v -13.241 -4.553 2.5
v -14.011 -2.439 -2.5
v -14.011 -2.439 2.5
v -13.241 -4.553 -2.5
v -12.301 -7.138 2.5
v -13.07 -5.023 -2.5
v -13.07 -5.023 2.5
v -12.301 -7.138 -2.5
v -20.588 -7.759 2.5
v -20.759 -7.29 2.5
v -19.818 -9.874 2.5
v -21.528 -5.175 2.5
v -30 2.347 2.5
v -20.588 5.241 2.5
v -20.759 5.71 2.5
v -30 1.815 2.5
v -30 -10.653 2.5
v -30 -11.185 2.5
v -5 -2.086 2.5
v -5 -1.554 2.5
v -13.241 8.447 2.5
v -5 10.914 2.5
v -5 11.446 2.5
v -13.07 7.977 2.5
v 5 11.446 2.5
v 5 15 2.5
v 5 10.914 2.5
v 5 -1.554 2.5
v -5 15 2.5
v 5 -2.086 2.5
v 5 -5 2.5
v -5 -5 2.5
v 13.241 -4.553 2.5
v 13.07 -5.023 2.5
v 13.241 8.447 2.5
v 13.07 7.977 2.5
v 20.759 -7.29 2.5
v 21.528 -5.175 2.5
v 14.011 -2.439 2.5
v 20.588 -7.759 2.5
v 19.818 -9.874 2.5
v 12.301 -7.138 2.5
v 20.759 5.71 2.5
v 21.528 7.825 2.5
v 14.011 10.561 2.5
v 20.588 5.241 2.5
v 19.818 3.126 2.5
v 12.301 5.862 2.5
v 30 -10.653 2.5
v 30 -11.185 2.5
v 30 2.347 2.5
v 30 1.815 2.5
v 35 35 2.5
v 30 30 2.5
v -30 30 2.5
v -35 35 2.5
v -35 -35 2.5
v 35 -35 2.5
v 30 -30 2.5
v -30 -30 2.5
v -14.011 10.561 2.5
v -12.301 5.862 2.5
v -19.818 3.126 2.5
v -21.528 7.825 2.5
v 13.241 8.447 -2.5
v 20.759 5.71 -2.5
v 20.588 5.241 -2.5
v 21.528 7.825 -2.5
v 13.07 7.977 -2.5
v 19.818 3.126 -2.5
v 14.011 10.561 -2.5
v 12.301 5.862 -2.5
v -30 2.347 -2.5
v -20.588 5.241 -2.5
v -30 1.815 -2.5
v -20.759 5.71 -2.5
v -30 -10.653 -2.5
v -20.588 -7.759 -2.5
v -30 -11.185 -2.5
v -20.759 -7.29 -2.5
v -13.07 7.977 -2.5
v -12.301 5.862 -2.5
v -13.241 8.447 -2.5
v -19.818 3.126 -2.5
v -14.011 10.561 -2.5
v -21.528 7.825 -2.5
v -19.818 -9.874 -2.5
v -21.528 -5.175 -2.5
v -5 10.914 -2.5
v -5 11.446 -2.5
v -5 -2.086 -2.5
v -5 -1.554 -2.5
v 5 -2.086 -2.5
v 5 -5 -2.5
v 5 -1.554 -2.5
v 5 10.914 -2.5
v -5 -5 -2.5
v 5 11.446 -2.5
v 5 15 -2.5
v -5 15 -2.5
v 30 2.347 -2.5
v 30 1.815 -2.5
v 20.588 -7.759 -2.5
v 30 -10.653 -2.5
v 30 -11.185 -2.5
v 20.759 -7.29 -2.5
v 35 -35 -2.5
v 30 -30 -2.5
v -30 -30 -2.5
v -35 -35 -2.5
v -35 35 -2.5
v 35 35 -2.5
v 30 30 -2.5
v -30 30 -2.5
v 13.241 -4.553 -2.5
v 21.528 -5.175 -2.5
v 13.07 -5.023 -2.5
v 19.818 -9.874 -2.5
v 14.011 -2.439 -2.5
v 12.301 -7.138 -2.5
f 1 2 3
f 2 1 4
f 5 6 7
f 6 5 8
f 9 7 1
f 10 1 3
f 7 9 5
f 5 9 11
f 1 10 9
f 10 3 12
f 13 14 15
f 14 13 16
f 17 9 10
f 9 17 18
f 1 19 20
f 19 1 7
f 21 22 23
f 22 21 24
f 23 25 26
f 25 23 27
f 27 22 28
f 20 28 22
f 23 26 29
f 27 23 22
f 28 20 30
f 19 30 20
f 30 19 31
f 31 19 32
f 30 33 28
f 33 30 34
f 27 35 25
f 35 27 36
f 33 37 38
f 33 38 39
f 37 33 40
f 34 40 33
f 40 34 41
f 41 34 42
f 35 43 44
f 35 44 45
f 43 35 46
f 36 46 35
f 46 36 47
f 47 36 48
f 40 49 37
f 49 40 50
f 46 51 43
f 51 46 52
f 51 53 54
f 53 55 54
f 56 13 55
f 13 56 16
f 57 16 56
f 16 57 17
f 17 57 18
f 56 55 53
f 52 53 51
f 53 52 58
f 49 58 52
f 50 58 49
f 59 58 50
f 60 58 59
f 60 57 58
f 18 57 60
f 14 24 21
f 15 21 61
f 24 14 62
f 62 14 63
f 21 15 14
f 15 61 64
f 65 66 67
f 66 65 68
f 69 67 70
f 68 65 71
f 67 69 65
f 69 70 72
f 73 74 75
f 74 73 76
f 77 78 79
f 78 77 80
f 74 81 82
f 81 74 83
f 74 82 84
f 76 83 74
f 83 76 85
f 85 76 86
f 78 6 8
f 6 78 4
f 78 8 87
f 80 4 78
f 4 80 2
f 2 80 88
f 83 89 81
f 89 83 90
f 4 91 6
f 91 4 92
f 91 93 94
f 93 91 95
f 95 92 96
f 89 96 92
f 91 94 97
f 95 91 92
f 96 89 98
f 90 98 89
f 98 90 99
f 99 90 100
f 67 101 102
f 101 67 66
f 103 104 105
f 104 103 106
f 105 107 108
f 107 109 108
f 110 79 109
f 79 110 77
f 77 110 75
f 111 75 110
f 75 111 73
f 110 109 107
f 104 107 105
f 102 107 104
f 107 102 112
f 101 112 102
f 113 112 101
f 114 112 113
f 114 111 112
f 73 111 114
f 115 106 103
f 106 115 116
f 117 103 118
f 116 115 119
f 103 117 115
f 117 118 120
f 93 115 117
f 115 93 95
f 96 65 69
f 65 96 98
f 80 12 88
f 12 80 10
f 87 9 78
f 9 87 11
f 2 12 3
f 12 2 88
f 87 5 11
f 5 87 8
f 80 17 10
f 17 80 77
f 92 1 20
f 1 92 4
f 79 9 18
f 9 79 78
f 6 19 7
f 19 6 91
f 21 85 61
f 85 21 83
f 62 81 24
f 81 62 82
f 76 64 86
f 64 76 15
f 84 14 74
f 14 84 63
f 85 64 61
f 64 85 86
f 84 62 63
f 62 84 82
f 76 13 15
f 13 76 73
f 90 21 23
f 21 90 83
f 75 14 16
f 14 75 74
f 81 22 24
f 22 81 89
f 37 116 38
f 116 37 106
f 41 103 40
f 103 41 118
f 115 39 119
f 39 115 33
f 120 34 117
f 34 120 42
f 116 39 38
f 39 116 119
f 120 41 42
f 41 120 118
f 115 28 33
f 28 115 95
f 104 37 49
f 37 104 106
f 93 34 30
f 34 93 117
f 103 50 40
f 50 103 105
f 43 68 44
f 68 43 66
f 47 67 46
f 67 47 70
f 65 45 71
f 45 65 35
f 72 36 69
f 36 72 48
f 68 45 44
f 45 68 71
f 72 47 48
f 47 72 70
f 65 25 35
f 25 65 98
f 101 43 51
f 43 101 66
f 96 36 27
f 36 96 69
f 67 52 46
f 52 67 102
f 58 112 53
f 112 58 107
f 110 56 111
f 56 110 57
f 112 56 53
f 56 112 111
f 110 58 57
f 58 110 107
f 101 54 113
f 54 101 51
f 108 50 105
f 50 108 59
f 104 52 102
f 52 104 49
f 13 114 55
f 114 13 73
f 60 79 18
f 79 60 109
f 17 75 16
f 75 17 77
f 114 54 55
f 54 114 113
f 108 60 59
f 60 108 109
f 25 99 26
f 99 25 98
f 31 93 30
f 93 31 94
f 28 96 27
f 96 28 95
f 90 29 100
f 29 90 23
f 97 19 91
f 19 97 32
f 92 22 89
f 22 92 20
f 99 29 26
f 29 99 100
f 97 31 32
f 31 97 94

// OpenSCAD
$fn = 64;

mm = 1;
cm = 10*mm;

module bistable_test() {
  #difference() {
    cube([7*cm, 7*cm, 5*mm], center = true);
    cube([6*cm, 6*cm, 6*cm], center = true);
  }

  translate([0,5*mm,0])
  #cube([1*cm, 2*cm, 5*mm], center = true);

  rotate([0,0,20]) {
    translate([-18*mm,0,0])
    #cube([8*mm, 5*mm, 5*mm], center = true);

    translate([-18*mm,0,0])
    cube([35*mm, 0.5*mm, 5*mm], center = true);
  }

  translate([0,13*mm,0])
  rotate([0,0,20]) {
    translate([-18*mm,0,0])
    #cube([8*mm, 5*mm, 5*mm], center = true);

    translate([-18*mm,0,0])
    cube([35*mm, 0.5*mm, 5*mm], center = true);
  }

  rotate([0,0,-20]) {
    translate([18*mm,0,0])
    #cube([8*mm, 5*mm, 5*mm], center = true);

    translate([18*mm,0,0])
    cube([35*mm, 0.5*mm, 5*mm], center = true);
  }

  translate([0,13*mm,0])
  rotate([0,0,-20]) {
    translate([18*mm,0,0])
    #cube([8*mm, 5*mm, 5*mm], center = true);

    translate([18*mm,0,0])
    cube([35*mm, 0.5*mm, 5*mm], center = true);
  }
}


bistable_test();
